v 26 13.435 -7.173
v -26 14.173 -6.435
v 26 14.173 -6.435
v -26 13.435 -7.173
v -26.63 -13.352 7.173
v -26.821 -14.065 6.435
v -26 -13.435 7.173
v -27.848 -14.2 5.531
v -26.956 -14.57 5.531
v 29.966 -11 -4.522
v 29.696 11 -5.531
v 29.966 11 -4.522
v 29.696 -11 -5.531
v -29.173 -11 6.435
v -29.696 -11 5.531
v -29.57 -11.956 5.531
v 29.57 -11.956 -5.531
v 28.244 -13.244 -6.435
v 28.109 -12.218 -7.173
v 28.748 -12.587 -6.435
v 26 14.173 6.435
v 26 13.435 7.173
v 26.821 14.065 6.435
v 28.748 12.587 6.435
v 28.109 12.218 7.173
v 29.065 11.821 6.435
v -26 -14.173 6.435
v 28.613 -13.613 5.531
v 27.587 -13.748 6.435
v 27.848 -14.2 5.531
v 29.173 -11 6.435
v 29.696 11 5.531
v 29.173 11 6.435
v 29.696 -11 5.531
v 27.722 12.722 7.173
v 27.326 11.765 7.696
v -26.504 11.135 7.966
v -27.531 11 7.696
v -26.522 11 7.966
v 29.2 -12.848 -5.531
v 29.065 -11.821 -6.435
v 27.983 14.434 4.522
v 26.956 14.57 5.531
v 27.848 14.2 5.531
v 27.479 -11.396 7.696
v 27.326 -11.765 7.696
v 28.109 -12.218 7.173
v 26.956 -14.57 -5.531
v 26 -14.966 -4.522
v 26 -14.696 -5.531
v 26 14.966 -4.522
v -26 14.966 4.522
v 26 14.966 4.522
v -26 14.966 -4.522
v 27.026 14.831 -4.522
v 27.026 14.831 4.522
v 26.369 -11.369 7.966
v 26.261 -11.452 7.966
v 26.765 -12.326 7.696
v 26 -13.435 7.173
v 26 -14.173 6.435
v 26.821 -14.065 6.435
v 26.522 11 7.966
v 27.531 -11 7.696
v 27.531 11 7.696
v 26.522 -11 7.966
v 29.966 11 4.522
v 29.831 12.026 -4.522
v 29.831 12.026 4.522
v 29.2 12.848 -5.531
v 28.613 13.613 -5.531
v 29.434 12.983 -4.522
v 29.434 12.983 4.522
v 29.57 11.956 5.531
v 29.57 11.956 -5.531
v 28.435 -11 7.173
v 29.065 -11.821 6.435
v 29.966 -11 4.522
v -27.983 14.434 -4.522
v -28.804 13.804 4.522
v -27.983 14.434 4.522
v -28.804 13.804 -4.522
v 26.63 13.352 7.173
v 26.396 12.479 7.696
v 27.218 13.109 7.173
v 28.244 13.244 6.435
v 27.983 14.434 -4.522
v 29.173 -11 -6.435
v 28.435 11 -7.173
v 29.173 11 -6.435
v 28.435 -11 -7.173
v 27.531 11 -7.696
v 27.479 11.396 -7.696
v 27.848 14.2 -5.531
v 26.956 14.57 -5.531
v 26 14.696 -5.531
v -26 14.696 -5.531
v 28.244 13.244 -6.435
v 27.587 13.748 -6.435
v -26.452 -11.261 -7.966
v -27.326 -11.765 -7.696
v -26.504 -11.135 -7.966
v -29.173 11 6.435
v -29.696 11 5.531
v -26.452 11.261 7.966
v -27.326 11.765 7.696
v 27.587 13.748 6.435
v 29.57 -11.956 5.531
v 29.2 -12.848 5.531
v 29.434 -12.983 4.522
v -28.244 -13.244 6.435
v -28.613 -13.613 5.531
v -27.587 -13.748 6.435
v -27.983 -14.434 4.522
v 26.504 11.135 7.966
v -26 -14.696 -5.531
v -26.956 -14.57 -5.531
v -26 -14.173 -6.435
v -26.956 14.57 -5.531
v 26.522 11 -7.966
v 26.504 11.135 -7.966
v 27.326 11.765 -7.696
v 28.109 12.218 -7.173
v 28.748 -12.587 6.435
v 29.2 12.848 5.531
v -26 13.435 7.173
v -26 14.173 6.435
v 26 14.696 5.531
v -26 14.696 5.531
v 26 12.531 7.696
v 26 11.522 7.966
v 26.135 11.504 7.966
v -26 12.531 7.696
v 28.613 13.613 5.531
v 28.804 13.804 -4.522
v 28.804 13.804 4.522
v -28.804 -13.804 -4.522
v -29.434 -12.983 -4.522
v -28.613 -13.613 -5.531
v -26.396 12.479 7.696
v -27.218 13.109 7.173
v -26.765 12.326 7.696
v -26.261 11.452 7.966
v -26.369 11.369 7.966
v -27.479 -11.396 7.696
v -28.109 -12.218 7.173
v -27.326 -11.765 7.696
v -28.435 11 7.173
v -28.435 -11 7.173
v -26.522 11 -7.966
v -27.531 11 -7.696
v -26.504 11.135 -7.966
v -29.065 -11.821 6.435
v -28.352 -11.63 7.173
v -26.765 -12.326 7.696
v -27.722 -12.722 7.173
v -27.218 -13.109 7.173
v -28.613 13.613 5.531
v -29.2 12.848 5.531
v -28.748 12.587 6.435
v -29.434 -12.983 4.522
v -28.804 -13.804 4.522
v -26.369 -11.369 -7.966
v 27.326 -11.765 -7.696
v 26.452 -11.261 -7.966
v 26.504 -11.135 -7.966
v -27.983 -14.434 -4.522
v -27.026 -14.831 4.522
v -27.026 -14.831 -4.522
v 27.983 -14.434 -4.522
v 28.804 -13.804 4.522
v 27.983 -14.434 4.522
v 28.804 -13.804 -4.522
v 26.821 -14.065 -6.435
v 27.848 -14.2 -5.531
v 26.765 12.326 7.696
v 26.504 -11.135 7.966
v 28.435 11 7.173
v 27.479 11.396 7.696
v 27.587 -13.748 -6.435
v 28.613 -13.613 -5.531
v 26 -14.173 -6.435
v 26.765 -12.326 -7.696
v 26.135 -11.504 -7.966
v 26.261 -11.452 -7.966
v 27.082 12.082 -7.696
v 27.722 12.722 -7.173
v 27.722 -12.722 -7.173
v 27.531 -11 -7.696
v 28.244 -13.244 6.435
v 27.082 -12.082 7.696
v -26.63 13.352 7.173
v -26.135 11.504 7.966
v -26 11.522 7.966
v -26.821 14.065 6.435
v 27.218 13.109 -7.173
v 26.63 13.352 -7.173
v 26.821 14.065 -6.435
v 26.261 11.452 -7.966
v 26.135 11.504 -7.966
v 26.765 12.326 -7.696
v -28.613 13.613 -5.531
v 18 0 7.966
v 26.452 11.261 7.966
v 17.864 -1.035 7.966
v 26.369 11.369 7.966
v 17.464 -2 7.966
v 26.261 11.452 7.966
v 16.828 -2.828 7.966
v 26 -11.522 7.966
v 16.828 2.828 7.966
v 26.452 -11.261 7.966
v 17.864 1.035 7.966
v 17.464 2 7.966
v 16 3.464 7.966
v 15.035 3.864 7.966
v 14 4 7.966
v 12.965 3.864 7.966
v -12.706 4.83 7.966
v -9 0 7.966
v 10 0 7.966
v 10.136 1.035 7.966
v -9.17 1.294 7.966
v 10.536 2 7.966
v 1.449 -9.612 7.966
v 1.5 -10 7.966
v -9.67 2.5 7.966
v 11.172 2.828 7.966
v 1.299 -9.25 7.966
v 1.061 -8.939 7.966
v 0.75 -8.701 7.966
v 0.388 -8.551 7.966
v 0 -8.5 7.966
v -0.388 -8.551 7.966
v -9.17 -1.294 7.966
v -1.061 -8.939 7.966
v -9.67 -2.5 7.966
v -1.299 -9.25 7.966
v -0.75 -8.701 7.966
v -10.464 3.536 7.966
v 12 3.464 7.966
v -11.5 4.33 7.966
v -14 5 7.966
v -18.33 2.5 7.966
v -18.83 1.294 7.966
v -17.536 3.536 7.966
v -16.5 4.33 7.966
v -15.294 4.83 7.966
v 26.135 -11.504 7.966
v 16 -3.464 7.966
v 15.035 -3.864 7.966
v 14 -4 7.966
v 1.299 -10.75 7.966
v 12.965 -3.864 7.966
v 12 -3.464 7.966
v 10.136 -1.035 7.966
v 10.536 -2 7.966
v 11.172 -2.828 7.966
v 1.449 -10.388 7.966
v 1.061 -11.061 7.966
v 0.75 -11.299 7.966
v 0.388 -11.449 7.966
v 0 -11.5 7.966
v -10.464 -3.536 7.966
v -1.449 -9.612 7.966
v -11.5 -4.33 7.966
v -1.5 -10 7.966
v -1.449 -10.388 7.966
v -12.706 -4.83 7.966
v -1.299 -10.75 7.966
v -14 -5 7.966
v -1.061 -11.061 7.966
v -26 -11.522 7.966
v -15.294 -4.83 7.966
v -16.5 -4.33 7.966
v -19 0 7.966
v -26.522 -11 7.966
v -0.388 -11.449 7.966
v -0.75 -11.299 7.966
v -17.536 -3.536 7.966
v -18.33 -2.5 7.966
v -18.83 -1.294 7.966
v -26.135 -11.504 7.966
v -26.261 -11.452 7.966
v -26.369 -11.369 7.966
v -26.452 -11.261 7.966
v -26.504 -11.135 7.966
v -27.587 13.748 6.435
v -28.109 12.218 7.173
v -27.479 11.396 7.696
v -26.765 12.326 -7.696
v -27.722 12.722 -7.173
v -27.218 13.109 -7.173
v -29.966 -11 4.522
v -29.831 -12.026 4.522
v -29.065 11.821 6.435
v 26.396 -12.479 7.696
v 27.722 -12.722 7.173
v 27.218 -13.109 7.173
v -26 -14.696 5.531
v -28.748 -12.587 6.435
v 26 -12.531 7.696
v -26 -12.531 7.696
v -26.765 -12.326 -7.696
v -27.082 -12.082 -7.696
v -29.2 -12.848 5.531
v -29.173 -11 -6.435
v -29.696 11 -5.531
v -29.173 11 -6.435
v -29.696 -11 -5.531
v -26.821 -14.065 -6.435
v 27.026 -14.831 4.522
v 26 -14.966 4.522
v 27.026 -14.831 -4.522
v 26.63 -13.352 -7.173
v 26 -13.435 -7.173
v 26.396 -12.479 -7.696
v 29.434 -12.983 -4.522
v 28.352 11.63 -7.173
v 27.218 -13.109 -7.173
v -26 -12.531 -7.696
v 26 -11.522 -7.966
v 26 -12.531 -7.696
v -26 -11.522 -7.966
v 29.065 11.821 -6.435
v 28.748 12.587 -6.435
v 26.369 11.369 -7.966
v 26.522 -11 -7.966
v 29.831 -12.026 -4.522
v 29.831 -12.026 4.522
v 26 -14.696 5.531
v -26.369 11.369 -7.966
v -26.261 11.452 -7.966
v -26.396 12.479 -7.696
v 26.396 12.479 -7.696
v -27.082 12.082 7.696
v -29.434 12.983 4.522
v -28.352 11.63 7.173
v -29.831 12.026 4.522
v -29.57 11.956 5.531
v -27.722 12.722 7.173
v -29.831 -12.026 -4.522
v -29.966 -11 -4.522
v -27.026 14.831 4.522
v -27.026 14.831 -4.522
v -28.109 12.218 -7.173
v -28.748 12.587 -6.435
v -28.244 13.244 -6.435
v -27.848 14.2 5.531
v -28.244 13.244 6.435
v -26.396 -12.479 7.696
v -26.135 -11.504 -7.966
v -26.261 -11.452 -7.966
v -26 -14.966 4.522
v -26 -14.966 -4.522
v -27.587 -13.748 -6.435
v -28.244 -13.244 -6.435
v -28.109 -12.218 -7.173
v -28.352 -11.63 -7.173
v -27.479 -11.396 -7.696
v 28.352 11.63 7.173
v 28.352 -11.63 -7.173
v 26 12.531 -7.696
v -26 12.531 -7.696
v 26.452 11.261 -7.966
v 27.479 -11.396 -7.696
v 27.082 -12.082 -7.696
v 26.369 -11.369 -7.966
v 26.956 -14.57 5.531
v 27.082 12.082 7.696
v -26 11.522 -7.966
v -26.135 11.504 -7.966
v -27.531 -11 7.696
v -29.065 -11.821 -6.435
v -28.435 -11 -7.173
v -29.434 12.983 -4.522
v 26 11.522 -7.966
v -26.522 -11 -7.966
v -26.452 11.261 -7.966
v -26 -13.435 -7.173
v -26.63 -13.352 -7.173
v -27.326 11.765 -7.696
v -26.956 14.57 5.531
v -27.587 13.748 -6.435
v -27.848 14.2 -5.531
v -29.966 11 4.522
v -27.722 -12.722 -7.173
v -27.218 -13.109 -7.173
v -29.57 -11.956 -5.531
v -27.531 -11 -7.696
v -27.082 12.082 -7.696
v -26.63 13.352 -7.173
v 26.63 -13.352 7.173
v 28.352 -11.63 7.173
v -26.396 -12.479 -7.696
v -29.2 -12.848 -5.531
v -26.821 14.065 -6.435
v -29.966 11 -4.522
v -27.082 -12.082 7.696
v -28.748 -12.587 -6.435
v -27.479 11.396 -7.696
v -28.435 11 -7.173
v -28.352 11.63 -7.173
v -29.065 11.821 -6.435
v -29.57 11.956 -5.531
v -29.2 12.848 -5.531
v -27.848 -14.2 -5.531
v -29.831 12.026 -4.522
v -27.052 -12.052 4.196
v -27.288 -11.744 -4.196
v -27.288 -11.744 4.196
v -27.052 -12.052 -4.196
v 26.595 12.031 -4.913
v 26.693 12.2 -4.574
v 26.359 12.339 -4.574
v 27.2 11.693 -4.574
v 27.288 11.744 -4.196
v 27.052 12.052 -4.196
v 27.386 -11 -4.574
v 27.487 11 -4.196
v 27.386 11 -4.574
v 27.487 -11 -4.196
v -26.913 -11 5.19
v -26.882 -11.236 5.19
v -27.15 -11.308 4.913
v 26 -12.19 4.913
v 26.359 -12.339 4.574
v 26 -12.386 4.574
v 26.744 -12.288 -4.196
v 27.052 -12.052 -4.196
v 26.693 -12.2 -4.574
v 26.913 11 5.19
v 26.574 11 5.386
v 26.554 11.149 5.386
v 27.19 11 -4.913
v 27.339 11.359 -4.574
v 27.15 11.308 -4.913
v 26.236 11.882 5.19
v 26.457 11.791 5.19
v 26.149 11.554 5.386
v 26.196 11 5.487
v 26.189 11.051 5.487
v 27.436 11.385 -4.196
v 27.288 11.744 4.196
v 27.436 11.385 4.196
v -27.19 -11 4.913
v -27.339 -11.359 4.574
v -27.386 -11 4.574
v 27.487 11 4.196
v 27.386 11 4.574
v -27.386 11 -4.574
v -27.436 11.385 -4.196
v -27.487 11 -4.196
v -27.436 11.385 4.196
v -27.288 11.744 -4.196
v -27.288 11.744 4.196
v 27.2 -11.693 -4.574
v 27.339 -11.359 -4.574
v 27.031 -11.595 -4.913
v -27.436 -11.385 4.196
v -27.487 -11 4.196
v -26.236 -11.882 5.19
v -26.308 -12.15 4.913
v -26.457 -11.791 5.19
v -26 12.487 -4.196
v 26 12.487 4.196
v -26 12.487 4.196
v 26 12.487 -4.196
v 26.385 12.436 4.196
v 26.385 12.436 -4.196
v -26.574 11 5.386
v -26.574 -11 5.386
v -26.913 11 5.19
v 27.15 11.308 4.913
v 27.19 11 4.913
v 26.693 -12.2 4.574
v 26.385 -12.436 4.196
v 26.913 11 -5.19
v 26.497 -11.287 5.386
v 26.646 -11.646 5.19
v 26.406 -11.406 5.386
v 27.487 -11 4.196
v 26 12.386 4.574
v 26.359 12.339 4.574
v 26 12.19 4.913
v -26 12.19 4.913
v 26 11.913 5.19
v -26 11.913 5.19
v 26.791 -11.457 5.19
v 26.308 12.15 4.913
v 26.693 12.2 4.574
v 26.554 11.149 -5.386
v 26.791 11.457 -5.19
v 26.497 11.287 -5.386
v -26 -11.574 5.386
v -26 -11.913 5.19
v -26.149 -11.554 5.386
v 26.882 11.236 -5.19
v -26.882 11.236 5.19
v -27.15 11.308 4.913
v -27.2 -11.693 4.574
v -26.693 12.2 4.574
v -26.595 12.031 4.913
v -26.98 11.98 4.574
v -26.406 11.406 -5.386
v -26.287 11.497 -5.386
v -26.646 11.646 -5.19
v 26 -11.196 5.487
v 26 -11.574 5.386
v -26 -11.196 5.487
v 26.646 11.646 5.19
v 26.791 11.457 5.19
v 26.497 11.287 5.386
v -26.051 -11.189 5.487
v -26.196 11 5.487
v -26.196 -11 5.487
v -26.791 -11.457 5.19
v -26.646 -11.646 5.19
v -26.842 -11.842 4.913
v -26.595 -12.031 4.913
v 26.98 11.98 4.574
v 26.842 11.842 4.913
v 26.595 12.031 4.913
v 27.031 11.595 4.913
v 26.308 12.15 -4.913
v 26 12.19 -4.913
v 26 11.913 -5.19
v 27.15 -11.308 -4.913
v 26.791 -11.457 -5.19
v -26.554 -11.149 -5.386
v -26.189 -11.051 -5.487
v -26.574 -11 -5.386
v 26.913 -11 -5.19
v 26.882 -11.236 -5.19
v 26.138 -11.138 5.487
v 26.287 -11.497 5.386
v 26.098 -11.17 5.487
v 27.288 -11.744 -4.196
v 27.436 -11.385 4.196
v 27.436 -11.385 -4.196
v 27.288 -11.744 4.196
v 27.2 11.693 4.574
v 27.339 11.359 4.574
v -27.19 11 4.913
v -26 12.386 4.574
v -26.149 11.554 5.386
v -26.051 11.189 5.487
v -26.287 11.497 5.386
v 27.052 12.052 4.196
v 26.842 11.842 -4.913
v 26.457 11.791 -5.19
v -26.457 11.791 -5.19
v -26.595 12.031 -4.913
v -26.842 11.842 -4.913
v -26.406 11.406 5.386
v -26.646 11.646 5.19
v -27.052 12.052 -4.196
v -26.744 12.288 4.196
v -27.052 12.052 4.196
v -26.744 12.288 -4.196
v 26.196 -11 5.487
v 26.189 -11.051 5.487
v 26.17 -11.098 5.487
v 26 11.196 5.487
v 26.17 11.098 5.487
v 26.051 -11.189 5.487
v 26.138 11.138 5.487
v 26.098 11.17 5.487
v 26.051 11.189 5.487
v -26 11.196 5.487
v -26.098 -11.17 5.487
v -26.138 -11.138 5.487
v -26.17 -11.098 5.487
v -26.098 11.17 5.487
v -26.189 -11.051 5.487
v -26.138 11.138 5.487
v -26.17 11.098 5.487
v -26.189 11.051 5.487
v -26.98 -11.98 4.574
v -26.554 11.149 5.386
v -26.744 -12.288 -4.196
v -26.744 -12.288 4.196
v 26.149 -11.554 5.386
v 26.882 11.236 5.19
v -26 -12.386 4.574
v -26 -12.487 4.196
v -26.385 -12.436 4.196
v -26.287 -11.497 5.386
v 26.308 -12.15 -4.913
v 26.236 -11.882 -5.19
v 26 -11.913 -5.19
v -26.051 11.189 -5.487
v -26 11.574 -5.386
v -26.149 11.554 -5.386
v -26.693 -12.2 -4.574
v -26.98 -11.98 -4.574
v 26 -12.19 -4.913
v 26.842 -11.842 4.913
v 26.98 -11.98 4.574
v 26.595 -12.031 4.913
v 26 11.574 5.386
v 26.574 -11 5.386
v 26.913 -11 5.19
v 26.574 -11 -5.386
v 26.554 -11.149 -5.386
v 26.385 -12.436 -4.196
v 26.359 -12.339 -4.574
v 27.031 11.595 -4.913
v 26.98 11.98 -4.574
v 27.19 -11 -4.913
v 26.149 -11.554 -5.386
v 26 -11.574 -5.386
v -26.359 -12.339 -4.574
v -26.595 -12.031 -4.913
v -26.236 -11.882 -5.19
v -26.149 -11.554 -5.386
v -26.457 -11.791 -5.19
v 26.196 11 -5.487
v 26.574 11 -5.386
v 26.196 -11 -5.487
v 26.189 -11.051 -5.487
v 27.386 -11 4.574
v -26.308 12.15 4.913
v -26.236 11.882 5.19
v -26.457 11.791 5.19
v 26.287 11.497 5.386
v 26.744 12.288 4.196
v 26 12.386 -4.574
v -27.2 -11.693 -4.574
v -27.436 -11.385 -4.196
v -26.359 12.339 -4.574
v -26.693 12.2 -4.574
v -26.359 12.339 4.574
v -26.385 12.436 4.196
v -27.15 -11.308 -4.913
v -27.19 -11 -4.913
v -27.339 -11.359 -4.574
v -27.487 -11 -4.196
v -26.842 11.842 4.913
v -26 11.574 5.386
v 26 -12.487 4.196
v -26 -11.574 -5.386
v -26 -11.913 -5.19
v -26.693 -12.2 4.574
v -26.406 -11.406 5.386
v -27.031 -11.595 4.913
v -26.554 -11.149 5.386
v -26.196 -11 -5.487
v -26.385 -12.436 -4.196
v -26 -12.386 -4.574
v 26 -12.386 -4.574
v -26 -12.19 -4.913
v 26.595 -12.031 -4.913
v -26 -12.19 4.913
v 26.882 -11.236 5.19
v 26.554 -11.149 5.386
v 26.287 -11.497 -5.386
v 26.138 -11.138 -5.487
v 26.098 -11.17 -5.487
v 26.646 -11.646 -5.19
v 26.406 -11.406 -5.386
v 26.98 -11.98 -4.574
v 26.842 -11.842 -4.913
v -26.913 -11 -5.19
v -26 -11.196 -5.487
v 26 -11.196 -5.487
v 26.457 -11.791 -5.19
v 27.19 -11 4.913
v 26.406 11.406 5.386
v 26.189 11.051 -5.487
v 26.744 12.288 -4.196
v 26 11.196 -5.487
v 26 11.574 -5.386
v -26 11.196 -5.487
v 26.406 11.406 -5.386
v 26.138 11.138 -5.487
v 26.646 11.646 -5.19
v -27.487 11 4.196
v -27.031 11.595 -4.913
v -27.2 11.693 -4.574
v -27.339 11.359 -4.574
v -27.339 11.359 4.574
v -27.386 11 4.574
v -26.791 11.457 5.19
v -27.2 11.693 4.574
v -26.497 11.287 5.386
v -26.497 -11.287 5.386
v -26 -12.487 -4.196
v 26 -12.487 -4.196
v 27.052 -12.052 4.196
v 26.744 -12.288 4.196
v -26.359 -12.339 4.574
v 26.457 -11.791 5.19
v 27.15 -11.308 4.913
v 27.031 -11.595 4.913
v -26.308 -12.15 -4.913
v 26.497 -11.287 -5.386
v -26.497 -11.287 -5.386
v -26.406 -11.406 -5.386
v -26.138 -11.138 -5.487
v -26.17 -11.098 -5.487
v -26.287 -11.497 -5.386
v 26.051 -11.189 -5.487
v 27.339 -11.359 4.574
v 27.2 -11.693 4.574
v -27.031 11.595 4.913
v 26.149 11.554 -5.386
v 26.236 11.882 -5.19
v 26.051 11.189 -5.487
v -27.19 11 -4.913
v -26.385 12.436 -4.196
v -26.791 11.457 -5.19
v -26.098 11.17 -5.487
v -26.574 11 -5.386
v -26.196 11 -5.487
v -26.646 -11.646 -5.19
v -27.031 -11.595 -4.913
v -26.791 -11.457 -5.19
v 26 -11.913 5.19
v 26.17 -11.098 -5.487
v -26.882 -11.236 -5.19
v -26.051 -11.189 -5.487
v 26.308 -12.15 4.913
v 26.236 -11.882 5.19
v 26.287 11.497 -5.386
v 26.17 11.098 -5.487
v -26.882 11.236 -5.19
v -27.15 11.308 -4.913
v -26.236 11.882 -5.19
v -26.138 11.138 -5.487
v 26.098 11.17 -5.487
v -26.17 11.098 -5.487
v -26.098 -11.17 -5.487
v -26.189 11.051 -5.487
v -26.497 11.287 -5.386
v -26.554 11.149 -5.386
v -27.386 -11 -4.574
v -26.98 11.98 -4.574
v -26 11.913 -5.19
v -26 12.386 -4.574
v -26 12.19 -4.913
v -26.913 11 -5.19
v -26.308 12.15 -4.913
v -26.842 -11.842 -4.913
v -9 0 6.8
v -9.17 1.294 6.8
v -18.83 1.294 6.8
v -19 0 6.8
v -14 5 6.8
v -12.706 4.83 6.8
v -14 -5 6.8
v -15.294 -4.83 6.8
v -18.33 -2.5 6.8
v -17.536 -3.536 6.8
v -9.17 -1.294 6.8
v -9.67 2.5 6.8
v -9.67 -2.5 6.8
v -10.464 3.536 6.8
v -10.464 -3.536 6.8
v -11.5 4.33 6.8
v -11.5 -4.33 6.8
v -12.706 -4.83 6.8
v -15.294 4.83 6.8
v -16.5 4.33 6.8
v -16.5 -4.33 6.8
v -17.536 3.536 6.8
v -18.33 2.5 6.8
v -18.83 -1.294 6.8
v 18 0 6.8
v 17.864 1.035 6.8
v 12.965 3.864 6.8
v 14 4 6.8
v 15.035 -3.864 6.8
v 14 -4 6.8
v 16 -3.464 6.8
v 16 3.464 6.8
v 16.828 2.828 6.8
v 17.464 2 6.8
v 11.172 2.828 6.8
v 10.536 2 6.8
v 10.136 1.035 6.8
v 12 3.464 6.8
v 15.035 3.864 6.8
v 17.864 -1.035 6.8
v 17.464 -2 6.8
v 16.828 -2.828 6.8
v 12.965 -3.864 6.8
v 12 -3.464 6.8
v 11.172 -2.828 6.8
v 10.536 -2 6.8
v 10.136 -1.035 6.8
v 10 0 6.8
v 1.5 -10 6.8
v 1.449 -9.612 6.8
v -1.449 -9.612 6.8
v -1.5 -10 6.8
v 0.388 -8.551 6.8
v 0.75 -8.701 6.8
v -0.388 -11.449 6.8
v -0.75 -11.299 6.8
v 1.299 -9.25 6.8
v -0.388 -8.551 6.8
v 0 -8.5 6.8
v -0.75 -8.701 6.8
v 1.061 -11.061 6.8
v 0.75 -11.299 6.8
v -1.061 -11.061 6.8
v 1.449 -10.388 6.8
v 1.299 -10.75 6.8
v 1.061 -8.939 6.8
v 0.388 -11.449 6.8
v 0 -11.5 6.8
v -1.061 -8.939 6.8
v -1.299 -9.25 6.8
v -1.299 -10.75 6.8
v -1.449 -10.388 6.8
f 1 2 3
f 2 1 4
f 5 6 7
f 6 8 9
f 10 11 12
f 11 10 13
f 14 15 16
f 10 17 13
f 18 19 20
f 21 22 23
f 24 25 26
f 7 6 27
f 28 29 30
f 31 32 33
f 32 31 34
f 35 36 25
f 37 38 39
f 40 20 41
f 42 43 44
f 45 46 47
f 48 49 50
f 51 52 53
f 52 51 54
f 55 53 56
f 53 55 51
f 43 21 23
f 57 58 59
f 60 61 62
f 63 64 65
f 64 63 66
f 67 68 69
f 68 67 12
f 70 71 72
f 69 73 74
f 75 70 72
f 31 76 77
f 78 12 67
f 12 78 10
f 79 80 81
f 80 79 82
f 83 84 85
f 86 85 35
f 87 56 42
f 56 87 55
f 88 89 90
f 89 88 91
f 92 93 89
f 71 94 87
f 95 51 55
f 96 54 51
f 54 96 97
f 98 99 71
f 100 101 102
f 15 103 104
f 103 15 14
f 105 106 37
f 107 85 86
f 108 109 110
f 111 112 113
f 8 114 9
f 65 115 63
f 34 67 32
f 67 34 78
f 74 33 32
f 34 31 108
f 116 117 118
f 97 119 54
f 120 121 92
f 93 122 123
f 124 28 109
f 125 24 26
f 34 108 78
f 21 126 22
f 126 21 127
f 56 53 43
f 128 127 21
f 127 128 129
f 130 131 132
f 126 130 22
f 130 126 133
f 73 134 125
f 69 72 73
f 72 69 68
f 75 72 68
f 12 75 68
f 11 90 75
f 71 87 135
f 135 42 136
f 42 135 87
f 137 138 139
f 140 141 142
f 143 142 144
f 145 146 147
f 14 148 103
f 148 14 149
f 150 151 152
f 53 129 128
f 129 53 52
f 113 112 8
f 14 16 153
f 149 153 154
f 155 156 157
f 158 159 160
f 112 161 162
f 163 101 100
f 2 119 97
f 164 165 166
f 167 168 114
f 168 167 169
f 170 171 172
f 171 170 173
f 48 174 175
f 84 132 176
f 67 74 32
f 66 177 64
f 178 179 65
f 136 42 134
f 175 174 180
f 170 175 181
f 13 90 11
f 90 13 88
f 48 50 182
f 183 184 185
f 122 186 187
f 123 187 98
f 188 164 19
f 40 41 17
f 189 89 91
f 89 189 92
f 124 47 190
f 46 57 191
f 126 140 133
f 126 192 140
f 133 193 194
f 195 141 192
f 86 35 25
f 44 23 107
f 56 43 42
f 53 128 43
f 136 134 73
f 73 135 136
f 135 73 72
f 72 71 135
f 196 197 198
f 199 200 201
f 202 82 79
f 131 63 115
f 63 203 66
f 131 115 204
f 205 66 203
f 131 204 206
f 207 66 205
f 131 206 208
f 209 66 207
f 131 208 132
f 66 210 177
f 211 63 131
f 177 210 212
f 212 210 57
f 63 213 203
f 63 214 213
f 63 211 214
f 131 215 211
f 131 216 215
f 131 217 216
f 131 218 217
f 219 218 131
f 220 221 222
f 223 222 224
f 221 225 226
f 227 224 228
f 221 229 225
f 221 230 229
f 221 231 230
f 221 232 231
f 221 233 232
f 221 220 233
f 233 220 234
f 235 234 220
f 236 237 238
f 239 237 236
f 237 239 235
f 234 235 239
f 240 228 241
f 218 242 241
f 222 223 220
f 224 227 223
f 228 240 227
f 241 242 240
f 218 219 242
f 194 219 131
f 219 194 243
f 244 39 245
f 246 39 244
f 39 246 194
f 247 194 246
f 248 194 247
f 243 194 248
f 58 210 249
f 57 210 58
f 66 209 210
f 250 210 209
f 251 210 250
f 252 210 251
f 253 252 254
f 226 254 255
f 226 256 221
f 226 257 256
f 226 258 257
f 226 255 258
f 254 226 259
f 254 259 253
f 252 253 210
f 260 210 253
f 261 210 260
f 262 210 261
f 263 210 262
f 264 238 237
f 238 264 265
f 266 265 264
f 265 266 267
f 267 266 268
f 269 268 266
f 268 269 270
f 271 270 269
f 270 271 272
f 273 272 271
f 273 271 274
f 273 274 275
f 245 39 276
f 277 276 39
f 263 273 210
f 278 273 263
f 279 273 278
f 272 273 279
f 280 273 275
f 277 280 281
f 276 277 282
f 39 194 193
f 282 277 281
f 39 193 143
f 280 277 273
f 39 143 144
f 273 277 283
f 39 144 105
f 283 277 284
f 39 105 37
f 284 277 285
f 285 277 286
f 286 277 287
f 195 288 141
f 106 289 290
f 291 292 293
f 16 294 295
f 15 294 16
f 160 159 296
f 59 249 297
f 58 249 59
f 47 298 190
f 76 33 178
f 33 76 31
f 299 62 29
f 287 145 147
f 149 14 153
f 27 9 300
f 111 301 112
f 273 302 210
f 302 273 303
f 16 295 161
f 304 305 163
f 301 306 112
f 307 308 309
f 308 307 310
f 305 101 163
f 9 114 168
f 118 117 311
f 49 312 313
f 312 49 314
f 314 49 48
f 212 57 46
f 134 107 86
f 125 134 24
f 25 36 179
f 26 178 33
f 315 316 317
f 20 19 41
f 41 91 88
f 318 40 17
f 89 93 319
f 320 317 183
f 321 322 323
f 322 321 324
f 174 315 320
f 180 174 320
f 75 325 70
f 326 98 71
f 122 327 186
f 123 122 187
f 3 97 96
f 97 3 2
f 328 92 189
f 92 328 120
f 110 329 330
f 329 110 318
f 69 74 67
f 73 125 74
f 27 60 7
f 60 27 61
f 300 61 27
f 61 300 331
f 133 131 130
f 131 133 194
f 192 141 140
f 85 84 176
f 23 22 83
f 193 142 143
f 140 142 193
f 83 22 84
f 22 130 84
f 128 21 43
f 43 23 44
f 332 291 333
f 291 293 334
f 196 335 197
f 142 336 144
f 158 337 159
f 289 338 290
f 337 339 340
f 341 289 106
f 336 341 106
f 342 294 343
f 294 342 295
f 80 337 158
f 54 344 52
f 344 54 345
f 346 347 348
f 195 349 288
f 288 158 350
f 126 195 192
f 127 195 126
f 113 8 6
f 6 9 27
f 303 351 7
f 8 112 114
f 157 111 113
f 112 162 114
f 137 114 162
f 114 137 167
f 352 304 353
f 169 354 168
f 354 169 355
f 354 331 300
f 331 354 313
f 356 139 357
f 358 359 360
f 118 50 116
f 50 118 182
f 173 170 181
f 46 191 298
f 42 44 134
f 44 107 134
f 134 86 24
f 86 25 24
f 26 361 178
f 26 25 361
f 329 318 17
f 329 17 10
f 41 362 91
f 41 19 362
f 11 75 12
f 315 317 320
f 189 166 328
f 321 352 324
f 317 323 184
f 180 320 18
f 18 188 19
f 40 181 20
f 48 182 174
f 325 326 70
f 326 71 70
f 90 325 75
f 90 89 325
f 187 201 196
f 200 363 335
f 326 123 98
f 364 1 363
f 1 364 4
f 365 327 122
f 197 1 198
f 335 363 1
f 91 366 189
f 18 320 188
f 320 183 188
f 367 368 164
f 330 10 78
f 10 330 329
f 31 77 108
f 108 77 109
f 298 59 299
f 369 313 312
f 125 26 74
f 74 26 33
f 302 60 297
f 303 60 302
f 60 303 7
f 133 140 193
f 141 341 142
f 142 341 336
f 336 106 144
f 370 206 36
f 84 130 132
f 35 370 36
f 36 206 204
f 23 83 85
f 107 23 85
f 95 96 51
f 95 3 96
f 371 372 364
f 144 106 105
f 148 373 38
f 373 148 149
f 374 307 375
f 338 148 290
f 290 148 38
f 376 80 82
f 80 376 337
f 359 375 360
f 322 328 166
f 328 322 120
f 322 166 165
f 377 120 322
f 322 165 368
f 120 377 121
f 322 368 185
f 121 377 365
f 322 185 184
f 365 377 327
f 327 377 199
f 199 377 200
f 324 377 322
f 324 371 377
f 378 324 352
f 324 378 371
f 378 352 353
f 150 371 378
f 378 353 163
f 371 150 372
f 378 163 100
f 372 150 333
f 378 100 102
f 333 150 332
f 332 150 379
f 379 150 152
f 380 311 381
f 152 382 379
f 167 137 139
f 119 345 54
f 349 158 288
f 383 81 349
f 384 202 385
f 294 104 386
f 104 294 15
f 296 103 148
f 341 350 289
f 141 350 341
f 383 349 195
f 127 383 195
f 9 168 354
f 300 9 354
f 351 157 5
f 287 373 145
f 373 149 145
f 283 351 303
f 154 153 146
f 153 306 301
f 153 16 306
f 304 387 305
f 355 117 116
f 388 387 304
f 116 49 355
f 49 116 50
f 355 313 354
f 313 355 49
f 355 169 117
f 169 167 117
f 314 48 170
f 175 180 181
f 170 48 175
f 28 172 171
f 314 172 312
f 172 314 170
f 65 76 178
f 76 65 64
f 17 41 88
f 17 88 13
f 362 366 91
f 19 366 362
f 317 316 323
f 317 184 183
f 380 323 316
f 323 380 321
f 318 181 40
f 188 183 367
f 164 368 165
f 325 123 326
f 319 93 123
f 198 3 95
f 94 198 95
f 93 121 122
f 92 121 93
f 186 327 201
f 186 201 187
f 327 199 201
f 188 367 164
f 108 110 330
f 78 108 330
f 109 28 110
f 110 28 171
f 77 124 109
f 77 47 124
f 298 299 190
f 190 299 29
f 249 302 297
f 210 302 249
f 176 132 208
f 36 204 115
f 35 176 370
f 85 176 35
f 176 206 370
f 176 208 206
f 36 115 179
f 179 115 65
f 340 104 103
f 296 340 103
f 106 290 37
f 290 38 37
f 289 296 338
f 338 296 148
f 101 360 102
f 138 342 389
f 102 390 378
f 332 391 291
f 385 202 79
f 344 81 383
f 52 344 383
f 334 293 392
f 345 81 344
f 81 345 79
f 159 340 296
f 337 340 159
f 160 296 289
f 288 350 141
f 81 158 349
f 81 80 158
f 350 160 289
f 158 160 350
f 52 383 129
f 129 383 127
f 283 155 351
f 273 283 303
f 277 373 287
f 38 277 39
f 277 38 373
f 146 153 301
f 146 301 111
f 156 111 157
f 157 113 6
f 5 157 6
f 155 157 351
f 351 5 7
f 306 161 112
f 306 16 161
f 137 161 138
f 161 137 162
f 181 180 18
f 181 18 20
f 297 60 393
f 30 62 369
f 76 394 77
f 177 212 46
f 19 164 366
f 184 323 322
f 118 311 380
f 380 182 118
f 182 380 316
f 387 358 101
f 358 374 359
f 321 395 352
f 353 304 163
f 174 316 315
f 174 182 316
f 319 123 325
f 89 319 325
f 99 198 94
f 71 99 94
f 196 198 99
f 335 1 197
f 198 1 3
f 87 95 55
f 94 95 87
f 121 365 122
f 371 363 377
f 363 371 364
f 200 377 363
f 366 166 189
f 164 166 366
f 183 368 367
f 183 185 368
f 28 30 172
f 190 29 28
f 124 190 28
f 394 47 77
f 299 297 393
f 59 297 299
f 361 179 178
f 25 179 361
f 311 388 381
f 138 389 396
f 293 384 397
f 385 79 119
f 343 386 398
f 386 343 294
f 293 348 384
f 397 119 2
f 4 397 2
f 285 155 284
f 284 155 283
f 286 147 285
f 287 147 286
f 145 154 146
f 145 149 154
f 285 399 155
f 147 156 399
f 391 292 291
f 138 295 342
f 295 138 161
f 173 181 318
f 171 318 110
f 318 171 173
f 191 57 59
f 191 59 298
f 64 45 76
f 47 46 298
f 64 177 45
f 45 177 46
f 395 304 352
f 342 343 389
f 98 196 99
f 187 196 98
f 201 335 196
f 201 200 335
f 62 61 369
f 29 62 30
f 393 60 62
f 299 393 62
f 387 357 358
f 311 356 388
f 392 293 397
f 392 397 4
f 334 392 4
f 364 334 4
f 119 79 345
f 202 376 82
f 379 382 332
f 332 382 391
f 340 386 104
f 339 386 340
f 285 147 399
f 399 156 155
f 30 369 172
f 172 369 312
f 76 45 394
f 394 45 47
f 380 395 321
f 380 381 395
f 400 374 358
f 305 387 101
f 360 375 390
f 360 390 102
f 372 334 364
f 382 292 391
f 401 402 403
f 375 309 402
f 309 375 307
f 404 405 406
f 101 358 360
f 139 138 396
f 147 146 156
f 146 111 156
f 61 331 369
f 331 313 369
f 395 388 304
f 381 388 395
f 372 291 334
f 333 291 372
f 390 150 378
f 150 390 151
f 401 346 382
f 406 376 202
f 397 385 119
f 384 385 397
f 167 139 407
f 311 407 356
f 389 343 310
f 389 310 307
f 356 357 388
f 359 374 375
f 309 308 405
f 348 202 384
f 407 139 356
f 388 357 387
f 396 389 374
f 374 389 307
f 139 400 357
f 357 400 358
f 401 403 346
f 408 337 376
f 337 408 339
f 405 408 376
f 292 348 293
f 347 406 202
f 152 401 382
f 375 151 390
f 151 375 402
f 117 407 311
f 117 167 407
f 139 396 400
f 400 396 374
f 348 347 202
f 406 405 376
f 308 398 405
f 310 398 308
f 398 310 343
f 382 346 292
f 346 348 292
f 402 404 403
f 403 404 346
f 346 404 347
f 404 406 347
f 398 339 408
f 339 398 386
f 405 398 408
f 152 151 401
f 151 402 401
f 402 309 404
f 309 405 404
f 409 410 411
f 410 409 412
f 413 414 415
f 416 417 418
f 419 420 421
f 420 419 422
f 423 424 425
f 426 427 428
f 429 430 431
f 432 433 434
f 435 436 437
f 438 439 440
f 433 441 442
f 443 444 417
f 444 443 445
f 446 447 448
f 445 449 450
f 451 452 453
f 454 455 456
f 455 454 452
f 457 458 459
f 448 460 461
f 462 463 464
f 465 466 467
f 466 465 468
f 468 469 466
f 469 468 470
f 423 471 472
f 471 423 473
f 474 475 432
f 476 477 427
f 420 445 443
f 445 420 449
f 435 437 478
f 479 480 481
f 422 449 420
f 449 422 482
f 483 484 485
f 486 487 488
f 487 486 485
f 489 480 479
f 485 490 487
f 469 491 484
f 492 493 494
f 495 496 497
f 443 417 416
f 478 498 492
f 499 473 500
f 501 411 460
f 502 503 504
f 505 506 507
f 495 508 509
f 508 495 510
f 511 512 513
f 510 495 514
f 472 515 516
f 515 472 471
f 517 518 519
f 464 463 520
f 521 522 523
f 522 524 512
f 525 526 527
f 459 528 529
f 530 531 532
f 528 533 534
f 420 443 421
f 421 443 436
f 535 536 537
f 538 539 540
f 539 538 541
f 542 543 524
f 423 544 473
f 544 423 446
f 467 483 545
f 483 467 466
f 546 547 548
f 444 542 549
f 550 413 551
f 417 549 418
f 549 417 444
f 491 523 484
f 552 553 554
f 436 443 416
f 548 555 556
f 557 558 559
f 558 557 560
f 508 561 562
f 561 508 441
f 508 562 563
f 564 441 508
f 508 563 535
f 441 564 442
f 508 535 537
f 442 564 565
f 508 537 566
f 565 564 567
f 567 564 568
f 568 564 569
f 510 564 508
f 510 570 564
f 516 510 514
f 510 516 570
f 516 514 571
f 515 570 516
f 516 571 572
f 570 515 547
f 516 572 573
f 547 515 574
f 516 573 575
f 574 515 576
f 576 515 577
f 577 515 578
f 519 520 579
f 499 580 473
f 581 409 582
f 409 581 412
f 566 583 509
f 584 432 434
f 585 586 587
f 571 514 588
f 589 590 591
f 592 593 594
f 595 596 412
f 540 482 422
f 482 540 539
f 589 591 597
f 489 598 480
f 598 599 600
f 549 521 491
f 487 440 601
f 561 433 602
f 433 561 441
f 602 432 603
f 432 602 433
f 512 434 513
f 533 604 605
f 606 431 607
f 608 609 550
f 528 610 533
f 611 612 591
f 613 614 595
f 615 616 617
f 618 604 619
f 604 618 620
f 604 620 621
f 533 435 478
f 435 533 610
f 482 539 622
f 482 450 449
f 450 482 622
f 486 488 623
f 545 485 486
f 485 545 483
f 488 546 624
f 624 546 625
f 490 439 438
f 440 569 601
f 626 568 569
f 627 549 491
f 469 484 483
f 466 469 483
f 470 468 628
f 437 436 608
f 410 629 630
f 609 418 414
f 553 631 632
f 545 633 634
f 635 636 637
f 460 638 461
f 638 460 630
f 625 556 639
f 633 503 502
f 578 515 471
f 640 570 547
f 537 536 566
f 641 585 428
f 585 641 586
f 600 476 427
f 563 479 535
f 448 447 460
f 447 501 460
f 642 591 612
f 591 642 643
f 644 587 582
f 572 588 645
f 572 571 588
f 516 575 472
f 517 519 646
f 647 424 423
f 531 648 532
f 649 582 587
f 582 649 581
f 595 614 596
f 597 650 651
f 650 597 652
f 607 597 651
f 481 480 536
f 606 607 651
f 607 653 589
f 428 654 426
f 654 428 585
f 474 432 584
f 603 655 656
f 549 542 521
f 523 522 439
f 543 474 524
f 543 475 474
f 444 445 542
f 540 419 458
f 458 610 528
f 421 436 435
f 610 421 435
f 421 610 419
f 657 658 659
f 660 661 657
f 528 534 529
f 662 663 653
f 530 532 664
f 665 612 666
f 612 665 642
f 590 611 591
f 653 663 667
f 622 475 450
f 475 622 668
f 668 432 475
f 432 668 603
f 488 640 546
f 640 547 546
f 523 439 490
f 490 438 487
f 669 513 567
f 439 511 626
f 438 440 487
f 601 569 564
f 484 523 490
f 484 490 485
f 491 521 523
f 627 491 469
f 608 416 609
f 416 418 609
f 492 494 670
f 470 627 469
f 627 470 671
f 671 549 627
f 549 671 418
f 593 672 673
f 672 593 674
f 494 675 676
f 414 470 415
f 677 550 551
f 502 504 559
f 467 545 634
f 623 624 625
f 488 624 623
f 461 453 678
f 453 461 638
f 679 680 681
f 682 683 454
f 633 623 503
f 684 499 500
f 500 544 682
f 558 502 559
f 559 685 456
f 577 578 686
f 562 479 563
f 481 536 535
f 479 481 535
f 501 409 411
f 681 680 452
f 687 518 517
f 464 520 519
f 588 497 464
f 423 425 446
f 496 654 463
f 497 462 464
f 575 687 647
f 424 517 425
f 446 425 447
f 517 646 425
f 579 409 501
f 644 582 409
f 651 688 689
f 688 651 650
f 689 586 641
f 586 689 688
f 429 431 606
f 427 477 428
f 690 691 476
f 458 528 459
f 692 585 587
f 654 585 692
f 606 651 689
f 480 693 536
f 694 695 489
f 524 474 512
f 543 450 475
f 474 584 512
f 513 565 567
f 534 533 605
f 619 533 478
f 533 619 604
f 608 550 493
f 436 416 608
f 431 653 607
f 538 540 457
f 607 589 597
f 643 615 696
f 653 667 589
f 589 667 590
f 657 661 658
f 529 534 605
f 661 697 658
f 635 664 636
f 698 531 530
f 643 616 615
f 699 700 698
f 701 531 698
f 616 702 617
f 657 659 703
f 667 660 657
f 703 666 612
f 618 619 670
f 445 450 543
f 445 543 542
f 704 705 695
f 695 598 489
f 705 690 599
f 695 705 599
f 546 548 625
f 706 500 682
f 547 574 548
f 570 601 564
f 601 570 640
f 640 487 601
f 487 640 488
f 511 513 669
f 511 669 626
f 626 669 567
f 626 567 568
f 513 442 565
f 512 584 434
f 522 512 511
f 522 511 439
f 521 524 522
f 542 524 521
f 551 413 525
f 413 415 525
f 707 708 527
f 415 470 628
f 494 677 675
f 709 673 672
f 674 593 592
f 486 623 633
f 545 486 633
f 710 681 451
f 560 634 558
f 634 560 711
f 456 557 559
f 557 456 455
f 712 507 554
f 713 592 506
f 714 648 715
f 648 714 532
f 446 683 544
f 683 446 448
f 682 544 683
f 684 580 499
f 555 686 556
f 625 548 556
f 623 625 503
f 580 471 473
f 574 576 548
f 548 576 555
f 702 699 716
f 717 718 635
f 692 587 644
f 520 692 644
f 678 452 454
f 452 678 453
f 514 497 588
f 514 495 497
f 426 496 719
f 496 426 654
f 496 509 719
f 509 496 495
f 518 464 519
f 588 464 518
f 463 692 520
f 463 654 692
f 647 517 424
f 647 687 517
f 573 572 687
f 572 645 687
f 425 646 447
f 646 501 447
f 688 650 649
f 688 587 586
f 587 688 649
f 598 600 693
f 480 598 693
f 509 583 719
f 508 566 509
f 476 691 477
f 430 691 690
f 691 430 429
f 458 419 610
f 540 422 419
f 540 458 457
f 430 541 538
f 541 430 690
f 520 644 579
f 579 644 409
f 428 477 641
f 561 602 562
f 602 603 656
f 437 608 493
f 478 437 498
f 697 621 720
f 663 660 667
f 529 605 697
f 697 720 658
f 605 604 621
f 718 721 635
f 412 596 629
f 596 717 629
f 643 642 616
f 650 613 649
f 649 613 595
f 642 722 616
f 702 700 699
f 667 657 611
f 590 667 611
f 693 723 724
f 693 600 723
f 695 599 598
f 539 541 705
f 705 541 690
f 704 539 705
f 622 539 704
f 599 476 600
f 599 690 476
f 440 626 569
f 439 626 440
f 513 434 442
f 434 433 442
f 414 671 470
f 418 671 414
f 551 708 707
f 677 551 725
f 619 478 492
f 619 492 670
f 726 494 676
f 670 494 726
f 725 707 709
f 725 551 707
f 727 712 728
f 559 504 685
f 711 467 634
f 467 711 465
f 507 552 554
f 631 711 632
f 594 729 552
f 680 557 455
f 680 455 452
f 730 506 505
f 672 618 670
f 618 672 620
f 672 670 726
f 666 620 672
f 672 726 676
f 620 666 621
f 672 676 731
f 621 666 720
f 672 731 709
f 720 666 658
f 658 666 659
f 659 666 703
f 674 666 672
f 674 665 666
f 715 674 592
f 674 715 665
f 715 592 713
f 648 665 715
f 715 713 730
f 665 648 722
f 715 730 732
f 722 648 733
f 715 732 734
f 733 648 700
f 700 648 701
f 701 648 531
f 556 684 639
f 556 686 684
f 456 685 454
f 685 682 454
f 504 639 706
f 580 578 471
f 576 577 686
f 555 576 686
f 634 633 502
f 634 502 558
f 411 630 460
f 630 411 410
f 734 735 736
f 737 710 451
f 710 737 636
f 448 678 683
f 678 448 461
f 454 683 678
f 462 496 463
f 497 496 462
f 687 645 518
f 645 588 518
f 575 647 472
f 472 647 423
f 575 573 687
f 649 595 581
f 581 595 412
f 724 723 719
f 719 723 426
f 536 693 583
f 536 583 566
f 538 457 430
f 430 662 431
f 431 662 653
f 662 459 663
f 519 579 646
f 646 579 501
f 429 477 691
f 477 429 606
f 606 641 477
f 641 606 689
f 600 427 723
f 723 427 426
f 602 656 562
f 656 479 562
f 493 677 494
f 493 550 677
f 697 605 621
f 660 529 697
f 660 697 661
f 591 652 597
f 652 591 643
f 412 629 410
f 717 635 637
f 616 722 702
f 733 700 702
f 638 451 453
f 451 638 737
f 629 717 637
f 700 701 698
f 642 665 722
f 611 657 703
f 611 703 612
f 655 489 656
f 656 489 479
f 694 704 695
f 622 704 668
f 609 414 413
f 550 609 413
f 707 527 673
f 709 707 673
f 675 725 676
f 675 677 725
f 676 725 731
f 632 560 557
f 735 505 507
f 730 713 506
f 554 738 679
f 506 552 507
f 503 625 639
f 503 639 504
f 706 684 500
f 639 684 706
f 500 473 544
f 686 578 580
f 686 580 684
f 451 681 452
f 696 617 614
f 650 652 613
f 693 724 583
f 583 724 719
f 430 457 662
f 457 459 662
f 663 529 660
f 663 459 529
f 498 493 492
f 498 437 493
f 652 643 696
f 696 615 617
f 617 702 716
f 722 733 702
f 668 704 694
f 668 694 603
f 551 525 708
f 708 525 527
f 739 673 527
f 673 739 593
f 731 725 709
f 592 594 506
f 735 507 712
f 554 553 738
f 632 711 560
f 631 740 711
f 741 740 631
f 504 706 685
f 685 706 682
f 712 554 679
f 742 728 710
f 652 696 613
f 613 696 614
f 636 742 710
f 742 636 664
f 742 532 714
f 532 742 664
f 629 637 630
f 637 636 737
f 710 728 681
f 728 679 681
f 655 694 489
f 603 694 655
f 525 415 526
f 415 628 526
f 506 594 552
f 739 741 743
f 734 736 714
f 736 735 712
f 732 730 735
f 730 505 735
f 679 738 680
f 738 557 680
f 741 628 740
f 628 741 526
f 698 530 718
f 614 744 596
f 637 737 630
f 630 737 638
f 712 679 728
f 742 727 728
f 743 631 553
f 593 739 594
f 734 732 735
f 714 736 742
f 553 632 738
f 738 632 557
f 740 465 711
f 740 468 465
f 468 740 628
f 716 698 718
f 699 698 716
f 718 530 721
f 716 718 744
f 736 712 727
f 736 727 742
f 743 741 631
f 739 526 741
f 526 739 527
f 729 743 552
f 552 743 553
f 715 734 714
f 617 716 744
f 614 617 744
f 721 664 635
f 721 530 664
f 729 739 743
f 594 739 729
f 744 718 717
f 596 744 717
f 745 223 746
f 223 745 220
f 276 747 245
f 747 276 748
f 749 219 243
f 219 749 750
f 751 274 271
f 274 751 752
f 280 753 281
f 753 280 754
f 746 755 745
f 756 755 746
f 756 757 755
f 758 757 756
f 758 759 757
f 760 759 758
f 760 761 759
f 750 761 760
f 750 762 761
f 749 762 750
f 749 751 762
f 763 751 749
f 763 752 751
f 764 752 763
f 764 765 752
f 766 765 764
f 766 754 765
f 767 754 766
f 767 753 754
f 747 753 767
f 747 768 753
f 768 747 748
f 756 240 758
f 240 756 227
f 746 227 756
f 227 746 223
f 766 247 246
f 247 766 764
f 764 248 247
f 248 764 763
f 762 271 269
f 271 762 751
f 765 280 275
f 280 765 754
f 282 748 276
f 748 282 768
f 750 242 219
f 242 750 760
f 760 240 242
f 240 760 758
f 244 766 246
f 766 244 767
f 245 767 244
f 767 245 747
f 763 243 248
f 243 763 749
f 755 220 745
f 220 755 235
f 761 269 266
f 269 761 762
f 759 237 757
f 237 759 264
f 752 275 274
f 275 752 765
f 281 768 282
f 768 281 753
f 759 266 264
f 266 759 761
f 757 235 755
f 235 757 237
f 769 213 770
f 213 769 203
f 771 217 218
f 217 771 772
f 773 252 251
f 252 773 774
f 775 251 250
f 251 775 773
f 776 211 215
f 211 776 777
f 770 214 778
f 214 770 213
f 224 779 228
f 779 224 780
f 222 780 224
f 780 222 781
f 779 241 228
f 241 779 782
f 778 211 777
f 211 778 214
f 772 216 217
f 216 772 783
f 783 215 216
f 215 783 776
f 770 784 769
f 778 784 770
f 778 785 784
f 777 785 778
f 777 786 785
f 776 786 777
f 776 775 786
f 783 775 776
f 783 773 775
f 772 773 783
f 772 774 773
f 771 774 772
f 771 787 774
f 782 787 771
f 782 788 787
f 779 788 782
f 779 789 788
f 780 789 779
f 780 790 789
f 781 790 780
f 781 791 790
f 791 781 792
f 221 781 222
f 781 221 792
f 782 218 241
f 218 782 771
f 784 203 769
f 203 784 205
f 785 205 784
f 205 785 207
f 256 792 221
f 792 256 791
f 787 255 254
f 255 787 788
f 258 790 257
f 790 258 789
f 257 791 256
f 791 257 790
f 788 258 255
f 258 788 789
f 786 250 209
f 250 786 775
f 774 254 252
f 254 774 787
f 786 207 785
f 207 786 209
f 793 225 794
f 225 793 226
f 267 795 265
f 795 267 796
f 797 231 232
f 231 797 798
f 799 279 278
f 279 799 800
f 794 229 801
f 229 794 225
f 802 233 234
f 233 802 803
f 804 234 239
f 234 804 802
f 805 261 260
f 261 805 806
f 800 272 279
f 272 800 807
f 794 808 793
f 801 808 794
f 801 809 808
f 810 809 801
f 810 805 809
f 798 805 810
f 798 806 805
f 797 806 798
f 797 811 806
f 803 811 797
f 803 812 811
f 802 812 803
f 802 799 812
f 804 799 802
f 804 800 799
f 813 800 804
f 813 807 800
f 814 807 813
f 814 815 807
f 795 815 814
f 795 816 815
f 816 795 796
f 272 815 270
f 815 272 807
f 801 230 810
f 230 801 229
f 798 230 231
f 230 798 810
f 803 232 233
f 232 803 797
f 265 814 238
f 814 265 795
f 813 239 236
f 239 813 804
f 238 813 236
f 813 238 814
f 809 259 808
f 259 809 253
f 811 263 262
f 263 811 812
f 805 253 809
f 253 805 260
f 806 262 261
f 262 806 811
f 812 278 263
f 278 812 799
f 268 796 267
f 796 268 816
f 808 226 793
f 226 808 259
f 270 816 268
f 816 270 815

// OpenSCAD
//  Ohisje senzorskega modula za zaznavo gest z rokami
//  (kamera + ToF senzor), gleda navzgor proti rokam
//  Projektna vaja - Uvod v racunalnisko geometrijo
//
//  SOLID model: "ploskve z debelino", votla notranjost.
//
//  STIKALI:
//    sensors_through = false -> senzorska okna so VDOLBINE
//                               -> votlina ostane ZAPRTA (vrzel)
//    sensors_through = true  -> okna prebijejo steno -> votlina ODPRTA
//    ports = true            -> kabelski port skozi zadnjo steno
//
//  Za 4. korak (demo zaznave vrzeli) pusti oboje na false.
// ============================================================

// ---------------- Glavno telo (vse v mm) ---------------------
body_l   = 60;     // sirina modula
body_w   = 30;     // globina
body_h   = 16;     // visina
wall     = 2.5;    // debelina sten  <-- vecja od velikosti voksla!
corner_r = 4;

// ---------------- Senzorska okna na zgornji ploskvi ----------
cam_r  = 5;    cam_x = -14;   // kamera
tof_r  = 4;    tof_x =  14;   // ToF senzor
led_r  = 1.5;  led_y = -10;   // LED indikator (pri x = 0)

sensors_through = false;       // glej opis zgoraj
sensor_depth = sensors_through ? (wall + 2) : 1.2;  // globina vdolbine

// ---------------- Kabelski port (zadnja -y stena) ------------
ports  = false;
usb_w  = 9;
usb_h  = 4;

// ---------------- Locljivost / st. trikotnikov ---------------
$fn = 24;          // za vokselizacijo zacni z 16-24
eps = 0.05;

// ------------------------------------------------------------
//  Pomozni modul: zaobljen kvader (hull 8 krogel)
// ------------------------------------------------------------
module rounded_box(l, w, h, r) {
    hull()
        for (sx = [-1, 1], sy = [-1, 1], sz = [-1, 1])
            translate([sx*(l/2 - r), sy*(w/2 - r), sz*(h/2 - r)])
                sphere(r);
}

// senzorsko okno: valj, ki gre z vrha navzdol za sensor_depth
module sensor_window(px, py, r) {
    translate([px, py, body_h/2 - sensor_depth/2 + eps])
        cylinder(h = sensor_depth + 2*eps, r = r, center = true);
}

// ------------------------------------------------------------
//  Glavno ohisje
// ------------------------------------------------------------
module ohisje() {
    difference() {
        // telo z votlino in senzorskimi okni
        difference() {
            rounded_box(body_l, body_w, body_h, corner_r);

            // notranja votlina
            rounded_box(body_l - 2*wall,
                        body_w - 2*wall,
                        body_h - 2*wall,
                        max(corner_r - wall, 0.6));

            // senzorska okna (vdolbine, ce sensors_through == false)
            sensor_window(cam_x, 0,     cam_r);   // kamera
            sensor_window(tof_x, 0,     tof_r);   // ToF
            sensor_window(0,     led_y, led_r);   // LED
        }

        // kabelski port skozi zadnjo (-y) steno (samo ce ports)
        if (ports)
            translate([0, -body_w/2 - 1, 0])
                cube([usb_w, 2*wall + 4, usb_h], center = true);
    }
}

ohisje();
